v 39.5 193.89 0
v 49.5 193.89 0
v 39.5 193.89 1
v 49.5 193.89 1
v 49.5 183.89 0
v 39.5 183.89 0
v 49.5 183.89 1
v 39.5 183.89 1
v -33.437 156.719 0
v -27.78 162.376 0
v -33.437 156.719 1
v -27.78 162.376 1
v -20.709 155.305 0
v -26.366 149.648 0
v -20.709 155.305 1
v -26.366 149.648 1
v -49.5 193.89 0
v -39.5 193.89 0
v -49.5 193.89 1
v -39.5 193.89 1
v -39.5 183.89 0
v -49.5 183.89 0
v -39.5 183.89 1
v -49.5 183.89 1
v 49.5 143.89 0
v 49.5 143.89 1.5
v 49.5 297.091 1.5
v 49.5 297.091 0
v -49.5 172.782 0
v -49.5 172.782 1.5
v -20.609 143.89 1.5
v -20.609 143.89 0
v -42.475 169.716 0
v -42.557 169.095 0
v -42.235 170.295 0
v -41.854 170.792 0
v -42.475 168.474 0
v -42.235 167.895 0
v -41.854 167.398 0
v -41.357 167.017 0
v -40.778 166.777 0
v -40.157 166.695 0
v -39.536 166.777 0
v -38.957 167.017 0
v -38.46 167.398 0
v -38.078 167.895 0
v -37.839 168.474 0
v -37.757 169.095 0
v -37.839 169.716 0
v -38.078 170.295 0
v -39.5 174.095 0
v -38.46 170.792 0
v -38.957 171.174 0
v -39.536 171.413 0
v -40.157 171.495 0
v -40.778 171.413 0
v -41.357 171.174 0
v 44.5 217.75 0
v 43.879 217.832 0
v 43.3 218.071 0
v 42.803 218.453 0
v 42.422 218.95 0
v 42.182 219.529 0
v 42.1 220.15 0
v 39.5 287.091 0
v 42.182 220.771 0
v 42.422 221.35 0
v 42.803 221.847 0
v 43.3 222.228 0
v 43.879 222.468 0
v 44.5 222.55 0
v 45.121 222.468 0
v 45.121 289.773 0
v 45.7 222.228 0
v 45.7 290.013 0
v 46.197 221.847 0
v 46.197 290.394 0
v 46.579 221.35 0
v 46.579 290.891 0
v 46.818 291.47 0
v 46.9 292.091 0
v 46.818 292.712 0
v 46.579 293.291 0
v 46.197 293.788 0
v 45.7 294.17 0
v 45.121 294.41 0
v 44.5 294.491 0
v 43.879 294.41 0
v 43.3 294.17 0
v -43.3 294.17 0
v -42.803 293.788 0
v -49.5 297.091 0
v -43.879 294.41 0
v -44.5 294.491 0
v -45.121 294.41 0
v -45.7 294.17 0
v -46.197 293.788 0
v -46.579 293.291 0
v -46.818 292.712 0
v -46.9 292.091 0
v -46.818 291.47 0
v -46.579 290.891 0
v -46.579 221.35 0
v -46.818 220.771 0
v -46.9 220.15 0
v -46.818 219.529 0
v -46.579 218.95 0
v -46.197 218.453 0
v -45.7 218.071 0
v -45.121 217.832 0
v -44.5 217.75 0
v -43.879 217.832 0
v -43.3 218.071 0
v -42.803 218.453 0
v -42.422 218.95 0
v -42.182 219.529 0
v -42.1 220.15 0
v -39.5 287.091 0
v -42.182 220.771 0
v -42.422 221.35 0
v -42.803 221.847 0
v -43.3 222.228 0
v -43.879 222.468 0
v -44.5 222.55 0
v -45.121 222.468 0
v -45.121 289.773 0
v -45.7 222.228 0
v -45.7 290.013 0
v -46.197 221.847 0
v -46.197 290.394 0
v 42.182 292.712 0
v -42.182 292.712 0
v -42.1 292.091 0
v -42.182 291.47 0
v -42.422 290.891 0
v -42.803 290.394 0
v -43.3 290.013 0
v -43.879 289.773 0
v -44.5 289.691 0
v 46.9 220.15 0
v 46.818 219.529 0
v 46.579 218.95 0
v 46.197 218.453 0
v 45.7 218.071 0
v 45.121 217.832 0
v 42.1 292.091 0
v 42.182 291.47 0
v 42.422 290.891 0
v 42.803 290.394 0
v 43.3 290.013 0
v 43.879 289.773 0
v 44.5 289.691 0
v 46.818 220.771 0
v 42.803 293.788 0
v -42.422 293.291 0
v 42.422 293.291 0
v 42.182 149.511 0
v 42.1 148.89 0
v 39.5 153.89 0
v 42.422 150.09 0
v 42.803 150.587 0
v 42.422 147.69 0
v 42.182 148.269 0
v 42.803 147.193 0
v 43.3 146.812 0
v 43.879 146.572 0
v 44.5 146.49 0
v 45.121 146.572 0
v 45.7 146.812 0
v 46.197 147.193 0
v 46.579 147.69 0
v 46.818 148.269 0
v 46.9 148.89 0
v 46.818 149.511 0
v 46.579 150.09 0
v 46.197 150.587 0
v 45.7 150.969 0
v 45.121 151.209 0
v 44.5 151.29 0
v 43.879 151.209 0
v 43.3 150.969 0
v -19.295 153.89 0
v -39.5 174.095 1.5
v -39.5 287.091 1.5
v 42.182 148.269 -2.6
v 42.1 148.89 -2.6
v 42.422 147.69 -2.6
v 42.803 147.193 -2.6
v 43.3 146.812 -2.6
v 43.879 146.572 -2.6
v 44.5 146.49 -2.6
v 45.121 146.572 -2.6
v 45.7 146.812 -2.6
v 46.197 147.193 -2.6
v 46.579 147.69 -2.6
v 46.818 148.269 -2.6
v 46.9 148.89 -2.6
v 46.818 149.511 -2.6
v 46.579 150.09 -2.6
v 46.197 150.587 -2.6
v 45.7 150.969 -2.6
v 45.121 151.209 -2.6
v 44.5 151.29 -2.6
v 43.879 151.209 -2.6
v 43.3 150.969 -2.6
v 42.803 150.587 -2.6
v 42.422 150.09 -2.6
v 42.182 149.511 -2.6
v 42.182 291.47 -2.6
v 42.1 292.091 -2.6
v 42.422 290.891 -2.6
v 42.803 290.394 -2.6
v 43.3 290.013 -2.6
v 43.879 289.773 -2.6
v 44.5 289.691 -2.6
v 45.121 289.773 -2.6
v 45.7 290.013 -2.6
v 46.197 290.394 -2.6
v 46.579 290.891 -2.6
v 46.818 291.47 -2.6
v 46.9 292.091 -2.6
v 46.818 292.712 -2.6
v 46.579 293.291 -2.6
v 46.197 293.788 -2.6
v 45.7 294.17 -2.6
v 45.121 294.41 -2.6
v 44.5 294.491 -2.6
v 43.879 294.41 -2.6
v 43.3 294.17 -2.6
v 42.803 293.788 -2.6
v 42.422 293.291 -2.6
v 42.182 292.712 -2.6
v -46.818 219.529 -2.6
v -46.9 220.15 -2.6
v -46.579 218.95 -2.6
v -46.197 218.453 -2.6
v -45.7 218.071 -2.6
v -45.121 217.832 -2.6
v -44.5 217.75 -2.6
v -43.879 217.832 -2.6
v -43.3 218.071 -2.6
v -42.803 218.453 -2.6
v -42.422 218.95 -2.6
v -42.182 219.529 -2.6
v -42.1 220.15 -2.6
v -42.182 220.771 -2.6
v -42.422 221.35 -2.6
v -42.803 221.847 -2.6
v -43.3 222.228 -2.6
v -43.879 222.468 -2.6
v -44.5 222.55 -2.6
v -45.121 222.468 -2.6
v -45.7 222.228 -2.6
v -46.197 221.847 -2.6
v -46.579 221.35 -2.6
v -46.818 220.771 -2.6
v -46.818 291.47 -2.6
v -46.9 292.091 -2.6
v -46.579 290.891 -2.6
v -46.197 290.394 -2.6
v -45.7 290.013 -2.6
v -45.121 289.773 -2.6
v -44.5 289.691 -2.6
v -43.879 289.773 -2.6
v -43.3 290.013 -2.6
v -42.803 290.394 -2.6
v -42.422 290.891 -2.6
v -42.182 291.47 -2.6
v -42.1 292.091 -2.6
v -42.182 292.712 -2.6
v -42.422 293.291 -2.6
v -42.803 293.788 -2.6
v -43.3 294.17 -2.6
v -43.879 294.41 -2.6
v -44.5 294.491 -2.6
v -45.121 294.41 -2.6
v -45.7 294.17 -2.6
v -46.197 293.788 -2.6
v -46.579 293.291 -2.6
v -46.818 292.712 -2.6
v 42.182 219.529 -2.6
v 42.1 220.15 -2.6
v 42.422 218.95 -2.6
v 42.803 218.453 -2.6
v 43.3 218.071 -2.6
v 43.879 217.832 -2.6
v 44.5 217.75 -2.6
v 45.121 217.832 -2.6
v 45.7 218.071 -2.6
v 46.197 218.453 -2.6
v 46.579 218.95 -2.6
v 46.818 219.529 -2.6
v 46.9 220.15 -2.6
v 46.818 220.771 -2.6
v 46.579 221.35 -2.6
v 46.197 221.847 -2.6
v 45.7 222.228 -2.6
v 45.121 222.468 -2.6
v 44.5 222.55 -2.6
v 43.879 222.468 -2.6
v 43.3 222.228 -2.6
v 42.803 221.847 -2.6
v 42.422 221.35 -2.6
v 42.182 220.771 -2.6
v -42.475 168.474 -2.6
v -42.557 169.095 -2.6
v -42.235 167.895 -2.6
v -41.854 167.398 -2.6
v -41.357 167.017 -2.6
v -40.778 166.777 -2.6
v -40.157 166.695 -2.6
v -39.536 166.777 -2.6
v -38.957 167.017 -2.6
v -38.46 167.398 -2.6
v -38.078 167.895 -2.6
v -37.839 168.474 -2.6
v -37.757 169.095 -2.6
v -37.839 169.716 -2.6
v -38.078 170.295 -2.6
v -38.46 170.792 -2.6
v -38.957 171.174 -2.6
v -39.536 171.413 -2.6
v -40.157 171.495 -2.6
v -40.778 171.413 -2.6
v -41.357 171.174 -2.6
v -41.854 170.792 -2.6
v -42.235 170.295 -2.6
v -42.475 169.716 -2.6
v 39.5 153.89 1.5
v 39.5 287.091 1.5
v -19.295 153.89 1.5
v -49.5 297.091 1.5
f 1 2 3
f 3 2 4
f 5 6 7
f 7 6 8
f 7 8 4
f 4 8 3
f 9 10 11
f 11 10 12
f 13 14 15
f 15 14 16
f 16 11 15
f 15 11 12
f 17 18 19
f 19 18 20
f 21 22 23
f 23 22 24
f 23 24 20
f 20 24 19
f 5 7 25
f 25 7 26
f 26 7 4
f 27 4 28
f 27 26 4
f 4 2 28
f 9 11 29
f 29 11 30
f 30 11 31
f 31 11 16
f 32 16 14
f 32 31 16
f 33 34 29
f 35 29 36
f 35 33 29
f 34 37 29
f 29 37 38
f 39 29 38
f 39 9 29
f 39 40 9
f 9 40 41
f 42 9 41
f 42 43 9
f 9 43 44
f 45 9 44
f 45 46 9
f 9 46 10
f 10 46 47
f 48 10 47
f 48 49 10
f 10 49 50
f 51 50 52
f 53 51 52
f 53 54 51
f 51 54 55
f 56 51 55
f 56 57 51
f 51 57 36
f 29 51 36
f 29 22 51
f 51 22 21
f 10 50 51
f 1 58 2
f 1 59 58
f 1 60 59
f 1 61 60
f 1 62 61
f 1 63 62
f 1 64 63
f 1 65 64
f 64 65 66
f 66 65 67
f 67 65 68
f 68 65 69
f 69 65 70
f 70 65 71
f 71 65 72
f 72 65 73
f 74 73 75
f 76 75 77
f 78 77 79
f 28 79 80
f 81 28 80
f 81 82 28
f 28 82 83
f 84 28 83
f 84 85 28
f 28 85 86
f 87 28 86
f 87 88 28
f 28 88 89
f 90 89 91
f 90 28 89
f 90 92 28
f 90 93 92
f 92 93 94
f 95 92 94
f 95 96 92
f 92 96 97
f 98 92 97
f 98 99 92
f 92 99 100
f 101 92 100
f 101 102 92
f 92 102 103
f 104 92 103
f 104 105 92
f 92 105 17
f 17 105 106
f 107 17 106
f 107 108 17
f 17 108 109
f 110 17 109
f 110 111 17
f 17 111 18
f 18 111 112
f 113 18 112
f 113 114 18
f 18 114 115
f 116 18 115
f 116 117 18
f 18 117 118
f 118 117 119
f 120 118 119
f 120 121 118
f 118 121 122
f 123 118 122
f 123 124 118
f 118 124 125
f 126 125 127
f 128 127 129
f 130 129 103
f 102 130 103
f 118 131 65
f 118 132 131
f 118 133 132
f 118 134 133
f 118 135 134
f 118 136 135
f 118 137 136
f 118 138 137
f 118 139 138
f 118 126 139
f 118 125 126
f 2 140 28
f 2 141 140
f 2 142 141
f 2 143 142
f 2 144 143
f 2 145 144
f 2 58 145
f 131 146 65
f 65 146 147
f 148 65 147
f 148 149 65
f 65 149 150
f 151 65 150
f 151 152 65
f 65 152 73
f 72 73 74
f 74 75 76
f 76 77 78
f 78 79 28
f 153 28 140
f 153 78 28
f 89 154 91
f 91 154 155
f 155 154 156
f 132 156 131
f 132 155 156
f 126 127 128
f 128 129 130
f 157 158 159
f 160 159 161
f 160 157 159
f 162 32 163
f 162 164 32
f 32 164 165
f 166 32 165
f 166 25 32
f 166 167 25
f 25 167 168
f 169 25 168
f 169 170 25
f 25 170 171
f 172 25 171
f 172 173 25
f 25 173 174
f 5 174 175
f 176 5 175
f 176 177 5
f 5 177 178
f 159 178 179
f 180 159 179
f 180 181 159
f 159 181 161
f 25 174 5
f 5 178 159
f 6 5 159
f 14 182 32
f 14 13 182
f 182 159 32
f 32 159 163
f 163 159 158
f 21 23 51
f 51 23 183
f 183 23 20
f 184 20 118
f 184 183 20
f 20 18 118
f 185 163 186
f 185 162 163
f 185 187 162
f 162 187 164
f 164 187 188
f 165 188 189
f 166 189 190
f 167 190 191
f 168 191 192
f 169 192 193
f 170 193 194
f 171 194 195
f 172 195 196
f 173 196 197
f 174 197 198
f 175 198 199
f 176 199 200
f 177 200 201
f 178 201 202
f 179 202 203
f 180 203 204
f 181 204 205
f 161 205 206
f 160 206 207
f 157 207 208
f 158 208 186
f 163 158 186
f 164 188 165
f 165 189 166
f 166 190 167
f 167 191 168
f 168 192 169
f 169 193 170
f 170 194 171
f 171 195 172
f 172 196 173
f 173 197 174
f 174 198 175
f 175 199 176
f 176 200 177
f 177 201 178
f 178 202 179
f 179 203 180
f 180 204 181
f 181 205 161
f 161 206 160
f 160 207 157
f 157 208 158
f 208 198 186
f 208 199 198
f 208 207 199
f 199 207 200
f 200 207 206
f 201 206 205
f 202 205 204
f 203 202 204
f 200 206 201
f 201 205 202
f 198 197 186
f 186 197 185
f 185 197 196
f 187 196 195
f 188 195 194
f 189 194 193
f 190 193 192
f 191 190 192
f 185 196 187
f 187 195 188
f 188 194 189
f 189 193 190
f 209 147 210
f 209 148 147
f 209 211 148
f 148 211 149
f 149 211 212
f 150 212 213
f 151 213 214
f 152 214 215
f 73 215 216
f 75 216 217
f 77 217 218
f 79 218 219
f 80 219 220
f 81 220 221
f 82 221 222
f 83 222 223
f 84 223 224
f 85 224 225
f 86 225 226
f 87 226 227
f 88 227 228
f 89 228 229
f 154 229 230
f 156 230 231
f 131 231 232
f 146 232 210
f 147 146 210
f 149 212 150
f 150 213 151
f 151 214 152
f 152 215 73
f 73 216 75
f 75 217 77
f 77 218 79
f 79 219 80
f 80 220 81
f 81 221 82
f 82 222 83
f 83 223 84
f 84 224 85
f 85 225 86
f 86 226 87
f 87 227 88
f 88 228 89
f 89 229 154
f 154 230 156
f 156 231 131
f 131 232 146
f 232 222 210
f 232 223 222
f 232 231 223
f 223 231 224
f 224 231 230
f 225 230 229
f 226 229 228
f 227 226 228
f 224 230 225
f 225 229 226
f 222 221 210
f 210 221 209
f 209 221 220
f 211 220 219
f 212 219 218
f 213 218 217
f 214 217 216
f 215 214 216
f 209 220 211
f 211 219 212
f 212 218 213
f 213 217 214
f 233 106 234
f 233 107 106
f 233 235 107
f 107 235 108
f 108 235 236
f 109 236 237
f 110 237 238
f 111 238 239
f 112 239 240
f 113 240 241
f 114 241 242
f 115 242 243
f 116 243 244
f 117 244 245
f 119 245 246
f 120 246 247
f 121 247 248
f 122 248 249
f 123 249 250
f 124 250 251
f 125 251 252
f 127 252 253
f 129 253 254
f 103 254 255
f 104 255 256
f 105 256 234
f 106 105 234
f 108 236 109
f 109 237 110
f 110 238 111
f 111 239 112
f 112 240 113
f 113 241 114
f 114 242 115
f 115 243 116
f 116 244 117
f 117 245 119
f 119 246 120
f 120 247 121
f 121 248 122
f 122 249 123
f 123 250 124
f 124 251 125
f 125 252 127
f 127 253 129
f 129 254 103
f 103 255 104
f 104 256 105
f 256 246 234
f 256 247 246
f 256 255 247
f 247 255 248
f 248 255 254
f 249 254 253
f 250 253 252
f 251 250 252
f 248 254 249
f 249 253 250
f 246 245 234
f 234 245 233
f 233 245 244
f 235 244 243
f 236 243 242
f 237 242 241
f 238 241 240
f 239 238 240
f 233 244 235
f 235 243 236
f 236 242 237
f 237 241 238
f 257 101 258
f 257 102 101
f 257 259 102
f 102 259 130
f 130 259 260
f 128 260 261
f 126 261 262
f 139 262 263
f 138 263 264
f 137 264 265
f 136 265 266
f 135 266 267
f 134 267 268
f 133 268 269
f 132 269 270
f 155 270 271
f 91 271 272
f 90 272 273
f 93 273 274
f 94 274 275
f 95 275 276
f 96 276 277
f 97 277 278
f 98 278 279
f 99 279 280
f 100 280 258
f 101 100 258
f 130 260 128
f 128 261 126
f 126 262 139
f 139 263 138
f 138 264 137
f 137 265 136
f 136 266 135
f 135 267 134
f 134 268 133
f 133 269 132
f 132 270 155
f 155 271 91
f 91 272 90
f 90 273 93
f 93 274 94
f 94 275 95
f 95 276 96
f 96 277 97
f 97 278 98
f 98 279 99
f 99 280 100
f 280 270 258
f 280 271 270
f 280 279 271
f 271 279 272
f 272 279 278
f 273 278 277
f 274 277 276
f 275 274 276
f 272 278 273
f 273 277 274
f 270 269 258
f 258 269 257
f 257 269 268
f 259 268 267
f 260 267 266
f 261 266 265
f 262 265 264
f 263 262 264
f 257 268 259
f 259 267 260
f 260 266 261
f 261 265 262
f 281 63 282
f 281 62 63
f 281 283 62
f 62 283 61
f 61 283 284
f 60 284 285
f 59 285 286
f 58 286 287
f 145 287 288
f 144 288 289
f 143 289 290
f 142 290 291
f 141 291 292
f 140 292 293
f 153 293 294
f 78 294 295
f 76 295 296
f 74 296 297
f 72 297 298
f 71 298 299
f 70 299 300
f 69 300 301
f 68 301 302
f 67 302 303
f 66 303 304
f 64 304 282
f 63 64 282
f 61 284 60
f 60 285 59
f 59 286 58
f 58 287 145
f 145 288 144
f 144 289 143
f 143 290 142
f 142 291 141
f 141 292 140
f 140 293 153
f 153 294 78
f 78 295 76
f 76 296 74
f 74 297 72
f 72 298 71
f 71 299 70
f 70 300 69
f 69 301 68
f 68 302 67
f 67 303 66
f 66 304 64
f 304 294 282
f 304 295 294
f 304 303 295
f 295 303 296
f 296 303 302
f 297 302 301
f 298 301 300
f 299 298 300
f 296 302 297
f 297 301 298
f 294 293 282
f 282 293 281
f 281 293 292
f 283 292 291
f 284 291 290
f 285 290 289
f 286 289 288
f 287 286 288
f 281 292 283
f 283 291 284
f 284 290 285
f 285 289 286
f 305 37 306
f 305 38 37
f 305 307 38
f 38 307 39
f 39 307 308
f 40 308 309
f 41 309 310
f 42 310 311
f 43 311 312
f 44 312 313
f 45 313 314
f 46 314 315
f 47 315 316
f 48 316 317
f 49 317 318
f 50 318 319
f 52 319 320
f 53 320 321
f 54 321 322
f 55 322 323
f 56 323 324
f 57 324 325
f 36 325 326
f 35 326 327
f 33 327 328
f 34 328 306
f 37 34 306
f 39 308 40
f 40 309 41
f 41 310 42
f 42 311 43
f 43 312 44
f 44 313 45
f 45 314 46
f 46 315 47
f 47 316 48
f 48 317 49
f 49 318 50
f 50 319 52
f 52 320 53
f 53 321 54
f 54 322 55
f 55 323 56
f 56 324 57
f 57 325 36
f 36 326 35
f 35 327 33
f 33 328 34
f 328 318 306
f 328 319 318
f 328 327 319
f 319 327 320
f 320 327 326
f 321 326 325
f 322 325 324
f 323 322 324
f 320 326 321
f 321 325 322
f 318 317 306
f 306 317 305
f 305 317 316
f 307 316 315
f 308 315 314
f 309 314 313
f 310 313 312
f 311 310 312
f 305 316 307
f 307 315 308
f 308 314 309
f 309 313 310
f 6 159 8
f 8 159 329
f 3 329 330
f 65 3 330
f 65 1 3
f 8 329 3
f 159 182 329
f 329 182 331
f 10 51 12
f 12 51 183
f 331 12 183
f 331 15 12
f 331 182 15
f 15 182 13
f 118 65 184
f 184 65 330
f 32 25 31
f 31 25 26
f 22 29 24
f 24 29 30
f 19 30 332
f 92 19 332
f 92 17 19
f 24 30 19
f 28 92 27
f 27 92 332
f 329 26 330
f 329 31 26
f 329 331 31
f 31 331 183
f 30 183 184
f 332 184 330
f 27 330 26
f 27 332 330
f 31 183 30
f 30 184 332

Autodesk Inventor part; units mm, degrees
ref_plane "YZ Plane" through (0, 0, 0) normal (1, 0, 0) x (0, 1, 0)
ref_plane "XZ Plane" through (0, 0, 0) normal (0, 1, 0) x (-1, 0, 0)
ref_plane "XY Plane" through (0, 0, 0) normal (0, 0, 1) x (1, 0, 0)
sketch "Skizze1" plane through (0, 0, 0) normal (0, 0, 1) x (1, 0, 0)
  line L0 (49.5001, 297.0913) -> (-49.5001, 297.0913) projected
  line L1 (49.5001, 143.8903) -> (49.5001, 297.0913) projected
  line L2 (-49.5001, 297.0913) -> (-49.5001, 143.8903) construction
  line L3 (-49.5001, 143.8903) -> (49.5001, 143.8903) construction
  circle A0 centre (-29.7001, 148.7389) radius 1.75 construction
  circle A1 centre (-44.8001, 148.7389) radius 1.75 construction
  circle A2 centre (-24.6237, 162.7718) radius 1.75 construction
  circle A3 centre (-20.9666, 159.2418) radius 1.75 construction
  circle A4 centre (44.5001, 148.8903) radius 2.5 construction
  circle A5 centre (44.5001, 220.1498) radius 2.5 construction
  circle A6 centre (-44.5001, 220.1498) radius 2.5 construction
  circle A7 centre (-44.5001, 292.0913) radius 2.5 construction
  circle A8 centre (44.5001, 292.0913) radius 2.5 construction
  line L4 (49.5001, 143.8903) -> (-20.6089, 143.8903)
  line L5 (-20.6089, 143.8903) -> (-49.5001, 172.7815)
  line L6 (-49.5001, 172.7815) -> (-49.5001, 297.0913)
  line L7 (-39.5001, 287.0913) -> (39.5001, 287.0913)
  line L8 (39.5001, 287.0913) -> (39.5001, 153.8903)
  line L9 (39.5001, 153.8903) -> (-19.2952, 153.8903)
  line L10 (-19.2952, 153.8903) -> (-39.5001, 174.0952)
  line L11 (-39.5001, 174.0952) -> (-39.5001, 287.0913)
  point P0 (0, 0)
  dimension "d0" = 135
  dimension "d1" = 8
  dimension "d2" = 3
  dimension "d3" = 10
  dimension "d4" = 10
  dimension "d5" = 10
  dimension "d6" = 10
extrude "Extrusion1" add sketch "Skizze1" along normal blind 1.5
sketch "Skizze2" plane through (0, 0, 0) normal (0, 0, -1) x (-1, 0, 0)
  circle A0 centre (44.5001, 220.1498) radius 2.4 projected
  circle A1 centre (44.5001, 292.0913) radius 2.4 projected
  circle A2 centre (-44.5001, 292.0913) radius 2.4 projected
  circle A3 centre (-44.5001, 220.1498) radius 2.4 projected
  circle A4 centre (-44.5001, 148.8903) radius 2.4 projected
  circle A5 centre (40.1569, 169.0952) radius 2.5 construction
  circle A6 centre (40.1569, 169.0952) radius 2.4
  point P0 (0, 0)
  dimension "d19" = 4.8
  dimension "d20" = 4.8
extrude "Extrusion2" add sketch "Skizze2" along normal blind 2.6
sketch "Skizze3" plane through (0, 0, 0) normal (0, 0, -1) x (-1, 0, 0)
  line L0 (-49.5001, 143.8903) -> (-49.5001, 297.0913) projected
  line L1 (-39.5001, 287.0913) -> (-39.5001, 153.8903) projected
  line L2 (-49.5001, 183.8903) -> (-39.5001, 183.8903)
  line L3 (-39.5001, 183.8903) -> (-39.5001, 193.8903)
  line L4 (-39.5001, 193.8903) -> (-49.5001, 193.8903)
  line L5 (-49.5001, 193.8903) -> (-49.5001, 183.8903)
  line L6 (39.5001, 287.0913) -> (39.5001, 174.0952) projected
  line L7 (49.5001, 297.0913) -> (49.5001, 172.7815) projected
  line L8 (39.5001, 183.8903) -> (49.5001, 183.8903)
  line L9 (49.5001, 183.8903) -> (49.5001, 193.8903)
  line L10 (49.5001, 193.8903) -> (39.5001, 193.8903)
  line L11 (39.5001, 193.8903) -> (39.5001, 183.8903)
  line L12 (39.5001, 174.0952) -> (19.2952, 153.8903) projected
  line L13 (20.7094, 155.3045) -> (26.3662, 149.6477)
  line L14 (49.5001, 172.7815) -> (20.6089, 143.8903) projected
  line L15 (26.3662, 149.6477) -> (33.4373, 156.7188)
  line L16 (33.4373, 156.7188) -> (27.7805, 162.3756)
  line L17 (27.7805, 162.3756) -> (20.7094, 155.3045)
  line L18 (20.6089, 143.8903) -> (-49.5001, 143.8903) projected
  point P0 (0, 0)
  dimension "d11" = 10
  dimension "d12" = 10
  dimension "d13" = 10
  dimension "d14" = 0
  dimension "d15" = 40
  dimension "d16" = 2
extrude "Extrusion3" cut sketch "Skizze3" against normal blind 1 contours L0 L4 L1 L2 | L13 L12 L16 L14 | L8 L6 L10 L7
equation "\"d4\" = d3"
equation "\"d5\" = d3"
equation "\"d6\" = d3"
equation "\"d20\" = d19"
equation "\"d12\" = d11"
equation "\"d13\" = d11"
properties part number "Backplate_V2"
